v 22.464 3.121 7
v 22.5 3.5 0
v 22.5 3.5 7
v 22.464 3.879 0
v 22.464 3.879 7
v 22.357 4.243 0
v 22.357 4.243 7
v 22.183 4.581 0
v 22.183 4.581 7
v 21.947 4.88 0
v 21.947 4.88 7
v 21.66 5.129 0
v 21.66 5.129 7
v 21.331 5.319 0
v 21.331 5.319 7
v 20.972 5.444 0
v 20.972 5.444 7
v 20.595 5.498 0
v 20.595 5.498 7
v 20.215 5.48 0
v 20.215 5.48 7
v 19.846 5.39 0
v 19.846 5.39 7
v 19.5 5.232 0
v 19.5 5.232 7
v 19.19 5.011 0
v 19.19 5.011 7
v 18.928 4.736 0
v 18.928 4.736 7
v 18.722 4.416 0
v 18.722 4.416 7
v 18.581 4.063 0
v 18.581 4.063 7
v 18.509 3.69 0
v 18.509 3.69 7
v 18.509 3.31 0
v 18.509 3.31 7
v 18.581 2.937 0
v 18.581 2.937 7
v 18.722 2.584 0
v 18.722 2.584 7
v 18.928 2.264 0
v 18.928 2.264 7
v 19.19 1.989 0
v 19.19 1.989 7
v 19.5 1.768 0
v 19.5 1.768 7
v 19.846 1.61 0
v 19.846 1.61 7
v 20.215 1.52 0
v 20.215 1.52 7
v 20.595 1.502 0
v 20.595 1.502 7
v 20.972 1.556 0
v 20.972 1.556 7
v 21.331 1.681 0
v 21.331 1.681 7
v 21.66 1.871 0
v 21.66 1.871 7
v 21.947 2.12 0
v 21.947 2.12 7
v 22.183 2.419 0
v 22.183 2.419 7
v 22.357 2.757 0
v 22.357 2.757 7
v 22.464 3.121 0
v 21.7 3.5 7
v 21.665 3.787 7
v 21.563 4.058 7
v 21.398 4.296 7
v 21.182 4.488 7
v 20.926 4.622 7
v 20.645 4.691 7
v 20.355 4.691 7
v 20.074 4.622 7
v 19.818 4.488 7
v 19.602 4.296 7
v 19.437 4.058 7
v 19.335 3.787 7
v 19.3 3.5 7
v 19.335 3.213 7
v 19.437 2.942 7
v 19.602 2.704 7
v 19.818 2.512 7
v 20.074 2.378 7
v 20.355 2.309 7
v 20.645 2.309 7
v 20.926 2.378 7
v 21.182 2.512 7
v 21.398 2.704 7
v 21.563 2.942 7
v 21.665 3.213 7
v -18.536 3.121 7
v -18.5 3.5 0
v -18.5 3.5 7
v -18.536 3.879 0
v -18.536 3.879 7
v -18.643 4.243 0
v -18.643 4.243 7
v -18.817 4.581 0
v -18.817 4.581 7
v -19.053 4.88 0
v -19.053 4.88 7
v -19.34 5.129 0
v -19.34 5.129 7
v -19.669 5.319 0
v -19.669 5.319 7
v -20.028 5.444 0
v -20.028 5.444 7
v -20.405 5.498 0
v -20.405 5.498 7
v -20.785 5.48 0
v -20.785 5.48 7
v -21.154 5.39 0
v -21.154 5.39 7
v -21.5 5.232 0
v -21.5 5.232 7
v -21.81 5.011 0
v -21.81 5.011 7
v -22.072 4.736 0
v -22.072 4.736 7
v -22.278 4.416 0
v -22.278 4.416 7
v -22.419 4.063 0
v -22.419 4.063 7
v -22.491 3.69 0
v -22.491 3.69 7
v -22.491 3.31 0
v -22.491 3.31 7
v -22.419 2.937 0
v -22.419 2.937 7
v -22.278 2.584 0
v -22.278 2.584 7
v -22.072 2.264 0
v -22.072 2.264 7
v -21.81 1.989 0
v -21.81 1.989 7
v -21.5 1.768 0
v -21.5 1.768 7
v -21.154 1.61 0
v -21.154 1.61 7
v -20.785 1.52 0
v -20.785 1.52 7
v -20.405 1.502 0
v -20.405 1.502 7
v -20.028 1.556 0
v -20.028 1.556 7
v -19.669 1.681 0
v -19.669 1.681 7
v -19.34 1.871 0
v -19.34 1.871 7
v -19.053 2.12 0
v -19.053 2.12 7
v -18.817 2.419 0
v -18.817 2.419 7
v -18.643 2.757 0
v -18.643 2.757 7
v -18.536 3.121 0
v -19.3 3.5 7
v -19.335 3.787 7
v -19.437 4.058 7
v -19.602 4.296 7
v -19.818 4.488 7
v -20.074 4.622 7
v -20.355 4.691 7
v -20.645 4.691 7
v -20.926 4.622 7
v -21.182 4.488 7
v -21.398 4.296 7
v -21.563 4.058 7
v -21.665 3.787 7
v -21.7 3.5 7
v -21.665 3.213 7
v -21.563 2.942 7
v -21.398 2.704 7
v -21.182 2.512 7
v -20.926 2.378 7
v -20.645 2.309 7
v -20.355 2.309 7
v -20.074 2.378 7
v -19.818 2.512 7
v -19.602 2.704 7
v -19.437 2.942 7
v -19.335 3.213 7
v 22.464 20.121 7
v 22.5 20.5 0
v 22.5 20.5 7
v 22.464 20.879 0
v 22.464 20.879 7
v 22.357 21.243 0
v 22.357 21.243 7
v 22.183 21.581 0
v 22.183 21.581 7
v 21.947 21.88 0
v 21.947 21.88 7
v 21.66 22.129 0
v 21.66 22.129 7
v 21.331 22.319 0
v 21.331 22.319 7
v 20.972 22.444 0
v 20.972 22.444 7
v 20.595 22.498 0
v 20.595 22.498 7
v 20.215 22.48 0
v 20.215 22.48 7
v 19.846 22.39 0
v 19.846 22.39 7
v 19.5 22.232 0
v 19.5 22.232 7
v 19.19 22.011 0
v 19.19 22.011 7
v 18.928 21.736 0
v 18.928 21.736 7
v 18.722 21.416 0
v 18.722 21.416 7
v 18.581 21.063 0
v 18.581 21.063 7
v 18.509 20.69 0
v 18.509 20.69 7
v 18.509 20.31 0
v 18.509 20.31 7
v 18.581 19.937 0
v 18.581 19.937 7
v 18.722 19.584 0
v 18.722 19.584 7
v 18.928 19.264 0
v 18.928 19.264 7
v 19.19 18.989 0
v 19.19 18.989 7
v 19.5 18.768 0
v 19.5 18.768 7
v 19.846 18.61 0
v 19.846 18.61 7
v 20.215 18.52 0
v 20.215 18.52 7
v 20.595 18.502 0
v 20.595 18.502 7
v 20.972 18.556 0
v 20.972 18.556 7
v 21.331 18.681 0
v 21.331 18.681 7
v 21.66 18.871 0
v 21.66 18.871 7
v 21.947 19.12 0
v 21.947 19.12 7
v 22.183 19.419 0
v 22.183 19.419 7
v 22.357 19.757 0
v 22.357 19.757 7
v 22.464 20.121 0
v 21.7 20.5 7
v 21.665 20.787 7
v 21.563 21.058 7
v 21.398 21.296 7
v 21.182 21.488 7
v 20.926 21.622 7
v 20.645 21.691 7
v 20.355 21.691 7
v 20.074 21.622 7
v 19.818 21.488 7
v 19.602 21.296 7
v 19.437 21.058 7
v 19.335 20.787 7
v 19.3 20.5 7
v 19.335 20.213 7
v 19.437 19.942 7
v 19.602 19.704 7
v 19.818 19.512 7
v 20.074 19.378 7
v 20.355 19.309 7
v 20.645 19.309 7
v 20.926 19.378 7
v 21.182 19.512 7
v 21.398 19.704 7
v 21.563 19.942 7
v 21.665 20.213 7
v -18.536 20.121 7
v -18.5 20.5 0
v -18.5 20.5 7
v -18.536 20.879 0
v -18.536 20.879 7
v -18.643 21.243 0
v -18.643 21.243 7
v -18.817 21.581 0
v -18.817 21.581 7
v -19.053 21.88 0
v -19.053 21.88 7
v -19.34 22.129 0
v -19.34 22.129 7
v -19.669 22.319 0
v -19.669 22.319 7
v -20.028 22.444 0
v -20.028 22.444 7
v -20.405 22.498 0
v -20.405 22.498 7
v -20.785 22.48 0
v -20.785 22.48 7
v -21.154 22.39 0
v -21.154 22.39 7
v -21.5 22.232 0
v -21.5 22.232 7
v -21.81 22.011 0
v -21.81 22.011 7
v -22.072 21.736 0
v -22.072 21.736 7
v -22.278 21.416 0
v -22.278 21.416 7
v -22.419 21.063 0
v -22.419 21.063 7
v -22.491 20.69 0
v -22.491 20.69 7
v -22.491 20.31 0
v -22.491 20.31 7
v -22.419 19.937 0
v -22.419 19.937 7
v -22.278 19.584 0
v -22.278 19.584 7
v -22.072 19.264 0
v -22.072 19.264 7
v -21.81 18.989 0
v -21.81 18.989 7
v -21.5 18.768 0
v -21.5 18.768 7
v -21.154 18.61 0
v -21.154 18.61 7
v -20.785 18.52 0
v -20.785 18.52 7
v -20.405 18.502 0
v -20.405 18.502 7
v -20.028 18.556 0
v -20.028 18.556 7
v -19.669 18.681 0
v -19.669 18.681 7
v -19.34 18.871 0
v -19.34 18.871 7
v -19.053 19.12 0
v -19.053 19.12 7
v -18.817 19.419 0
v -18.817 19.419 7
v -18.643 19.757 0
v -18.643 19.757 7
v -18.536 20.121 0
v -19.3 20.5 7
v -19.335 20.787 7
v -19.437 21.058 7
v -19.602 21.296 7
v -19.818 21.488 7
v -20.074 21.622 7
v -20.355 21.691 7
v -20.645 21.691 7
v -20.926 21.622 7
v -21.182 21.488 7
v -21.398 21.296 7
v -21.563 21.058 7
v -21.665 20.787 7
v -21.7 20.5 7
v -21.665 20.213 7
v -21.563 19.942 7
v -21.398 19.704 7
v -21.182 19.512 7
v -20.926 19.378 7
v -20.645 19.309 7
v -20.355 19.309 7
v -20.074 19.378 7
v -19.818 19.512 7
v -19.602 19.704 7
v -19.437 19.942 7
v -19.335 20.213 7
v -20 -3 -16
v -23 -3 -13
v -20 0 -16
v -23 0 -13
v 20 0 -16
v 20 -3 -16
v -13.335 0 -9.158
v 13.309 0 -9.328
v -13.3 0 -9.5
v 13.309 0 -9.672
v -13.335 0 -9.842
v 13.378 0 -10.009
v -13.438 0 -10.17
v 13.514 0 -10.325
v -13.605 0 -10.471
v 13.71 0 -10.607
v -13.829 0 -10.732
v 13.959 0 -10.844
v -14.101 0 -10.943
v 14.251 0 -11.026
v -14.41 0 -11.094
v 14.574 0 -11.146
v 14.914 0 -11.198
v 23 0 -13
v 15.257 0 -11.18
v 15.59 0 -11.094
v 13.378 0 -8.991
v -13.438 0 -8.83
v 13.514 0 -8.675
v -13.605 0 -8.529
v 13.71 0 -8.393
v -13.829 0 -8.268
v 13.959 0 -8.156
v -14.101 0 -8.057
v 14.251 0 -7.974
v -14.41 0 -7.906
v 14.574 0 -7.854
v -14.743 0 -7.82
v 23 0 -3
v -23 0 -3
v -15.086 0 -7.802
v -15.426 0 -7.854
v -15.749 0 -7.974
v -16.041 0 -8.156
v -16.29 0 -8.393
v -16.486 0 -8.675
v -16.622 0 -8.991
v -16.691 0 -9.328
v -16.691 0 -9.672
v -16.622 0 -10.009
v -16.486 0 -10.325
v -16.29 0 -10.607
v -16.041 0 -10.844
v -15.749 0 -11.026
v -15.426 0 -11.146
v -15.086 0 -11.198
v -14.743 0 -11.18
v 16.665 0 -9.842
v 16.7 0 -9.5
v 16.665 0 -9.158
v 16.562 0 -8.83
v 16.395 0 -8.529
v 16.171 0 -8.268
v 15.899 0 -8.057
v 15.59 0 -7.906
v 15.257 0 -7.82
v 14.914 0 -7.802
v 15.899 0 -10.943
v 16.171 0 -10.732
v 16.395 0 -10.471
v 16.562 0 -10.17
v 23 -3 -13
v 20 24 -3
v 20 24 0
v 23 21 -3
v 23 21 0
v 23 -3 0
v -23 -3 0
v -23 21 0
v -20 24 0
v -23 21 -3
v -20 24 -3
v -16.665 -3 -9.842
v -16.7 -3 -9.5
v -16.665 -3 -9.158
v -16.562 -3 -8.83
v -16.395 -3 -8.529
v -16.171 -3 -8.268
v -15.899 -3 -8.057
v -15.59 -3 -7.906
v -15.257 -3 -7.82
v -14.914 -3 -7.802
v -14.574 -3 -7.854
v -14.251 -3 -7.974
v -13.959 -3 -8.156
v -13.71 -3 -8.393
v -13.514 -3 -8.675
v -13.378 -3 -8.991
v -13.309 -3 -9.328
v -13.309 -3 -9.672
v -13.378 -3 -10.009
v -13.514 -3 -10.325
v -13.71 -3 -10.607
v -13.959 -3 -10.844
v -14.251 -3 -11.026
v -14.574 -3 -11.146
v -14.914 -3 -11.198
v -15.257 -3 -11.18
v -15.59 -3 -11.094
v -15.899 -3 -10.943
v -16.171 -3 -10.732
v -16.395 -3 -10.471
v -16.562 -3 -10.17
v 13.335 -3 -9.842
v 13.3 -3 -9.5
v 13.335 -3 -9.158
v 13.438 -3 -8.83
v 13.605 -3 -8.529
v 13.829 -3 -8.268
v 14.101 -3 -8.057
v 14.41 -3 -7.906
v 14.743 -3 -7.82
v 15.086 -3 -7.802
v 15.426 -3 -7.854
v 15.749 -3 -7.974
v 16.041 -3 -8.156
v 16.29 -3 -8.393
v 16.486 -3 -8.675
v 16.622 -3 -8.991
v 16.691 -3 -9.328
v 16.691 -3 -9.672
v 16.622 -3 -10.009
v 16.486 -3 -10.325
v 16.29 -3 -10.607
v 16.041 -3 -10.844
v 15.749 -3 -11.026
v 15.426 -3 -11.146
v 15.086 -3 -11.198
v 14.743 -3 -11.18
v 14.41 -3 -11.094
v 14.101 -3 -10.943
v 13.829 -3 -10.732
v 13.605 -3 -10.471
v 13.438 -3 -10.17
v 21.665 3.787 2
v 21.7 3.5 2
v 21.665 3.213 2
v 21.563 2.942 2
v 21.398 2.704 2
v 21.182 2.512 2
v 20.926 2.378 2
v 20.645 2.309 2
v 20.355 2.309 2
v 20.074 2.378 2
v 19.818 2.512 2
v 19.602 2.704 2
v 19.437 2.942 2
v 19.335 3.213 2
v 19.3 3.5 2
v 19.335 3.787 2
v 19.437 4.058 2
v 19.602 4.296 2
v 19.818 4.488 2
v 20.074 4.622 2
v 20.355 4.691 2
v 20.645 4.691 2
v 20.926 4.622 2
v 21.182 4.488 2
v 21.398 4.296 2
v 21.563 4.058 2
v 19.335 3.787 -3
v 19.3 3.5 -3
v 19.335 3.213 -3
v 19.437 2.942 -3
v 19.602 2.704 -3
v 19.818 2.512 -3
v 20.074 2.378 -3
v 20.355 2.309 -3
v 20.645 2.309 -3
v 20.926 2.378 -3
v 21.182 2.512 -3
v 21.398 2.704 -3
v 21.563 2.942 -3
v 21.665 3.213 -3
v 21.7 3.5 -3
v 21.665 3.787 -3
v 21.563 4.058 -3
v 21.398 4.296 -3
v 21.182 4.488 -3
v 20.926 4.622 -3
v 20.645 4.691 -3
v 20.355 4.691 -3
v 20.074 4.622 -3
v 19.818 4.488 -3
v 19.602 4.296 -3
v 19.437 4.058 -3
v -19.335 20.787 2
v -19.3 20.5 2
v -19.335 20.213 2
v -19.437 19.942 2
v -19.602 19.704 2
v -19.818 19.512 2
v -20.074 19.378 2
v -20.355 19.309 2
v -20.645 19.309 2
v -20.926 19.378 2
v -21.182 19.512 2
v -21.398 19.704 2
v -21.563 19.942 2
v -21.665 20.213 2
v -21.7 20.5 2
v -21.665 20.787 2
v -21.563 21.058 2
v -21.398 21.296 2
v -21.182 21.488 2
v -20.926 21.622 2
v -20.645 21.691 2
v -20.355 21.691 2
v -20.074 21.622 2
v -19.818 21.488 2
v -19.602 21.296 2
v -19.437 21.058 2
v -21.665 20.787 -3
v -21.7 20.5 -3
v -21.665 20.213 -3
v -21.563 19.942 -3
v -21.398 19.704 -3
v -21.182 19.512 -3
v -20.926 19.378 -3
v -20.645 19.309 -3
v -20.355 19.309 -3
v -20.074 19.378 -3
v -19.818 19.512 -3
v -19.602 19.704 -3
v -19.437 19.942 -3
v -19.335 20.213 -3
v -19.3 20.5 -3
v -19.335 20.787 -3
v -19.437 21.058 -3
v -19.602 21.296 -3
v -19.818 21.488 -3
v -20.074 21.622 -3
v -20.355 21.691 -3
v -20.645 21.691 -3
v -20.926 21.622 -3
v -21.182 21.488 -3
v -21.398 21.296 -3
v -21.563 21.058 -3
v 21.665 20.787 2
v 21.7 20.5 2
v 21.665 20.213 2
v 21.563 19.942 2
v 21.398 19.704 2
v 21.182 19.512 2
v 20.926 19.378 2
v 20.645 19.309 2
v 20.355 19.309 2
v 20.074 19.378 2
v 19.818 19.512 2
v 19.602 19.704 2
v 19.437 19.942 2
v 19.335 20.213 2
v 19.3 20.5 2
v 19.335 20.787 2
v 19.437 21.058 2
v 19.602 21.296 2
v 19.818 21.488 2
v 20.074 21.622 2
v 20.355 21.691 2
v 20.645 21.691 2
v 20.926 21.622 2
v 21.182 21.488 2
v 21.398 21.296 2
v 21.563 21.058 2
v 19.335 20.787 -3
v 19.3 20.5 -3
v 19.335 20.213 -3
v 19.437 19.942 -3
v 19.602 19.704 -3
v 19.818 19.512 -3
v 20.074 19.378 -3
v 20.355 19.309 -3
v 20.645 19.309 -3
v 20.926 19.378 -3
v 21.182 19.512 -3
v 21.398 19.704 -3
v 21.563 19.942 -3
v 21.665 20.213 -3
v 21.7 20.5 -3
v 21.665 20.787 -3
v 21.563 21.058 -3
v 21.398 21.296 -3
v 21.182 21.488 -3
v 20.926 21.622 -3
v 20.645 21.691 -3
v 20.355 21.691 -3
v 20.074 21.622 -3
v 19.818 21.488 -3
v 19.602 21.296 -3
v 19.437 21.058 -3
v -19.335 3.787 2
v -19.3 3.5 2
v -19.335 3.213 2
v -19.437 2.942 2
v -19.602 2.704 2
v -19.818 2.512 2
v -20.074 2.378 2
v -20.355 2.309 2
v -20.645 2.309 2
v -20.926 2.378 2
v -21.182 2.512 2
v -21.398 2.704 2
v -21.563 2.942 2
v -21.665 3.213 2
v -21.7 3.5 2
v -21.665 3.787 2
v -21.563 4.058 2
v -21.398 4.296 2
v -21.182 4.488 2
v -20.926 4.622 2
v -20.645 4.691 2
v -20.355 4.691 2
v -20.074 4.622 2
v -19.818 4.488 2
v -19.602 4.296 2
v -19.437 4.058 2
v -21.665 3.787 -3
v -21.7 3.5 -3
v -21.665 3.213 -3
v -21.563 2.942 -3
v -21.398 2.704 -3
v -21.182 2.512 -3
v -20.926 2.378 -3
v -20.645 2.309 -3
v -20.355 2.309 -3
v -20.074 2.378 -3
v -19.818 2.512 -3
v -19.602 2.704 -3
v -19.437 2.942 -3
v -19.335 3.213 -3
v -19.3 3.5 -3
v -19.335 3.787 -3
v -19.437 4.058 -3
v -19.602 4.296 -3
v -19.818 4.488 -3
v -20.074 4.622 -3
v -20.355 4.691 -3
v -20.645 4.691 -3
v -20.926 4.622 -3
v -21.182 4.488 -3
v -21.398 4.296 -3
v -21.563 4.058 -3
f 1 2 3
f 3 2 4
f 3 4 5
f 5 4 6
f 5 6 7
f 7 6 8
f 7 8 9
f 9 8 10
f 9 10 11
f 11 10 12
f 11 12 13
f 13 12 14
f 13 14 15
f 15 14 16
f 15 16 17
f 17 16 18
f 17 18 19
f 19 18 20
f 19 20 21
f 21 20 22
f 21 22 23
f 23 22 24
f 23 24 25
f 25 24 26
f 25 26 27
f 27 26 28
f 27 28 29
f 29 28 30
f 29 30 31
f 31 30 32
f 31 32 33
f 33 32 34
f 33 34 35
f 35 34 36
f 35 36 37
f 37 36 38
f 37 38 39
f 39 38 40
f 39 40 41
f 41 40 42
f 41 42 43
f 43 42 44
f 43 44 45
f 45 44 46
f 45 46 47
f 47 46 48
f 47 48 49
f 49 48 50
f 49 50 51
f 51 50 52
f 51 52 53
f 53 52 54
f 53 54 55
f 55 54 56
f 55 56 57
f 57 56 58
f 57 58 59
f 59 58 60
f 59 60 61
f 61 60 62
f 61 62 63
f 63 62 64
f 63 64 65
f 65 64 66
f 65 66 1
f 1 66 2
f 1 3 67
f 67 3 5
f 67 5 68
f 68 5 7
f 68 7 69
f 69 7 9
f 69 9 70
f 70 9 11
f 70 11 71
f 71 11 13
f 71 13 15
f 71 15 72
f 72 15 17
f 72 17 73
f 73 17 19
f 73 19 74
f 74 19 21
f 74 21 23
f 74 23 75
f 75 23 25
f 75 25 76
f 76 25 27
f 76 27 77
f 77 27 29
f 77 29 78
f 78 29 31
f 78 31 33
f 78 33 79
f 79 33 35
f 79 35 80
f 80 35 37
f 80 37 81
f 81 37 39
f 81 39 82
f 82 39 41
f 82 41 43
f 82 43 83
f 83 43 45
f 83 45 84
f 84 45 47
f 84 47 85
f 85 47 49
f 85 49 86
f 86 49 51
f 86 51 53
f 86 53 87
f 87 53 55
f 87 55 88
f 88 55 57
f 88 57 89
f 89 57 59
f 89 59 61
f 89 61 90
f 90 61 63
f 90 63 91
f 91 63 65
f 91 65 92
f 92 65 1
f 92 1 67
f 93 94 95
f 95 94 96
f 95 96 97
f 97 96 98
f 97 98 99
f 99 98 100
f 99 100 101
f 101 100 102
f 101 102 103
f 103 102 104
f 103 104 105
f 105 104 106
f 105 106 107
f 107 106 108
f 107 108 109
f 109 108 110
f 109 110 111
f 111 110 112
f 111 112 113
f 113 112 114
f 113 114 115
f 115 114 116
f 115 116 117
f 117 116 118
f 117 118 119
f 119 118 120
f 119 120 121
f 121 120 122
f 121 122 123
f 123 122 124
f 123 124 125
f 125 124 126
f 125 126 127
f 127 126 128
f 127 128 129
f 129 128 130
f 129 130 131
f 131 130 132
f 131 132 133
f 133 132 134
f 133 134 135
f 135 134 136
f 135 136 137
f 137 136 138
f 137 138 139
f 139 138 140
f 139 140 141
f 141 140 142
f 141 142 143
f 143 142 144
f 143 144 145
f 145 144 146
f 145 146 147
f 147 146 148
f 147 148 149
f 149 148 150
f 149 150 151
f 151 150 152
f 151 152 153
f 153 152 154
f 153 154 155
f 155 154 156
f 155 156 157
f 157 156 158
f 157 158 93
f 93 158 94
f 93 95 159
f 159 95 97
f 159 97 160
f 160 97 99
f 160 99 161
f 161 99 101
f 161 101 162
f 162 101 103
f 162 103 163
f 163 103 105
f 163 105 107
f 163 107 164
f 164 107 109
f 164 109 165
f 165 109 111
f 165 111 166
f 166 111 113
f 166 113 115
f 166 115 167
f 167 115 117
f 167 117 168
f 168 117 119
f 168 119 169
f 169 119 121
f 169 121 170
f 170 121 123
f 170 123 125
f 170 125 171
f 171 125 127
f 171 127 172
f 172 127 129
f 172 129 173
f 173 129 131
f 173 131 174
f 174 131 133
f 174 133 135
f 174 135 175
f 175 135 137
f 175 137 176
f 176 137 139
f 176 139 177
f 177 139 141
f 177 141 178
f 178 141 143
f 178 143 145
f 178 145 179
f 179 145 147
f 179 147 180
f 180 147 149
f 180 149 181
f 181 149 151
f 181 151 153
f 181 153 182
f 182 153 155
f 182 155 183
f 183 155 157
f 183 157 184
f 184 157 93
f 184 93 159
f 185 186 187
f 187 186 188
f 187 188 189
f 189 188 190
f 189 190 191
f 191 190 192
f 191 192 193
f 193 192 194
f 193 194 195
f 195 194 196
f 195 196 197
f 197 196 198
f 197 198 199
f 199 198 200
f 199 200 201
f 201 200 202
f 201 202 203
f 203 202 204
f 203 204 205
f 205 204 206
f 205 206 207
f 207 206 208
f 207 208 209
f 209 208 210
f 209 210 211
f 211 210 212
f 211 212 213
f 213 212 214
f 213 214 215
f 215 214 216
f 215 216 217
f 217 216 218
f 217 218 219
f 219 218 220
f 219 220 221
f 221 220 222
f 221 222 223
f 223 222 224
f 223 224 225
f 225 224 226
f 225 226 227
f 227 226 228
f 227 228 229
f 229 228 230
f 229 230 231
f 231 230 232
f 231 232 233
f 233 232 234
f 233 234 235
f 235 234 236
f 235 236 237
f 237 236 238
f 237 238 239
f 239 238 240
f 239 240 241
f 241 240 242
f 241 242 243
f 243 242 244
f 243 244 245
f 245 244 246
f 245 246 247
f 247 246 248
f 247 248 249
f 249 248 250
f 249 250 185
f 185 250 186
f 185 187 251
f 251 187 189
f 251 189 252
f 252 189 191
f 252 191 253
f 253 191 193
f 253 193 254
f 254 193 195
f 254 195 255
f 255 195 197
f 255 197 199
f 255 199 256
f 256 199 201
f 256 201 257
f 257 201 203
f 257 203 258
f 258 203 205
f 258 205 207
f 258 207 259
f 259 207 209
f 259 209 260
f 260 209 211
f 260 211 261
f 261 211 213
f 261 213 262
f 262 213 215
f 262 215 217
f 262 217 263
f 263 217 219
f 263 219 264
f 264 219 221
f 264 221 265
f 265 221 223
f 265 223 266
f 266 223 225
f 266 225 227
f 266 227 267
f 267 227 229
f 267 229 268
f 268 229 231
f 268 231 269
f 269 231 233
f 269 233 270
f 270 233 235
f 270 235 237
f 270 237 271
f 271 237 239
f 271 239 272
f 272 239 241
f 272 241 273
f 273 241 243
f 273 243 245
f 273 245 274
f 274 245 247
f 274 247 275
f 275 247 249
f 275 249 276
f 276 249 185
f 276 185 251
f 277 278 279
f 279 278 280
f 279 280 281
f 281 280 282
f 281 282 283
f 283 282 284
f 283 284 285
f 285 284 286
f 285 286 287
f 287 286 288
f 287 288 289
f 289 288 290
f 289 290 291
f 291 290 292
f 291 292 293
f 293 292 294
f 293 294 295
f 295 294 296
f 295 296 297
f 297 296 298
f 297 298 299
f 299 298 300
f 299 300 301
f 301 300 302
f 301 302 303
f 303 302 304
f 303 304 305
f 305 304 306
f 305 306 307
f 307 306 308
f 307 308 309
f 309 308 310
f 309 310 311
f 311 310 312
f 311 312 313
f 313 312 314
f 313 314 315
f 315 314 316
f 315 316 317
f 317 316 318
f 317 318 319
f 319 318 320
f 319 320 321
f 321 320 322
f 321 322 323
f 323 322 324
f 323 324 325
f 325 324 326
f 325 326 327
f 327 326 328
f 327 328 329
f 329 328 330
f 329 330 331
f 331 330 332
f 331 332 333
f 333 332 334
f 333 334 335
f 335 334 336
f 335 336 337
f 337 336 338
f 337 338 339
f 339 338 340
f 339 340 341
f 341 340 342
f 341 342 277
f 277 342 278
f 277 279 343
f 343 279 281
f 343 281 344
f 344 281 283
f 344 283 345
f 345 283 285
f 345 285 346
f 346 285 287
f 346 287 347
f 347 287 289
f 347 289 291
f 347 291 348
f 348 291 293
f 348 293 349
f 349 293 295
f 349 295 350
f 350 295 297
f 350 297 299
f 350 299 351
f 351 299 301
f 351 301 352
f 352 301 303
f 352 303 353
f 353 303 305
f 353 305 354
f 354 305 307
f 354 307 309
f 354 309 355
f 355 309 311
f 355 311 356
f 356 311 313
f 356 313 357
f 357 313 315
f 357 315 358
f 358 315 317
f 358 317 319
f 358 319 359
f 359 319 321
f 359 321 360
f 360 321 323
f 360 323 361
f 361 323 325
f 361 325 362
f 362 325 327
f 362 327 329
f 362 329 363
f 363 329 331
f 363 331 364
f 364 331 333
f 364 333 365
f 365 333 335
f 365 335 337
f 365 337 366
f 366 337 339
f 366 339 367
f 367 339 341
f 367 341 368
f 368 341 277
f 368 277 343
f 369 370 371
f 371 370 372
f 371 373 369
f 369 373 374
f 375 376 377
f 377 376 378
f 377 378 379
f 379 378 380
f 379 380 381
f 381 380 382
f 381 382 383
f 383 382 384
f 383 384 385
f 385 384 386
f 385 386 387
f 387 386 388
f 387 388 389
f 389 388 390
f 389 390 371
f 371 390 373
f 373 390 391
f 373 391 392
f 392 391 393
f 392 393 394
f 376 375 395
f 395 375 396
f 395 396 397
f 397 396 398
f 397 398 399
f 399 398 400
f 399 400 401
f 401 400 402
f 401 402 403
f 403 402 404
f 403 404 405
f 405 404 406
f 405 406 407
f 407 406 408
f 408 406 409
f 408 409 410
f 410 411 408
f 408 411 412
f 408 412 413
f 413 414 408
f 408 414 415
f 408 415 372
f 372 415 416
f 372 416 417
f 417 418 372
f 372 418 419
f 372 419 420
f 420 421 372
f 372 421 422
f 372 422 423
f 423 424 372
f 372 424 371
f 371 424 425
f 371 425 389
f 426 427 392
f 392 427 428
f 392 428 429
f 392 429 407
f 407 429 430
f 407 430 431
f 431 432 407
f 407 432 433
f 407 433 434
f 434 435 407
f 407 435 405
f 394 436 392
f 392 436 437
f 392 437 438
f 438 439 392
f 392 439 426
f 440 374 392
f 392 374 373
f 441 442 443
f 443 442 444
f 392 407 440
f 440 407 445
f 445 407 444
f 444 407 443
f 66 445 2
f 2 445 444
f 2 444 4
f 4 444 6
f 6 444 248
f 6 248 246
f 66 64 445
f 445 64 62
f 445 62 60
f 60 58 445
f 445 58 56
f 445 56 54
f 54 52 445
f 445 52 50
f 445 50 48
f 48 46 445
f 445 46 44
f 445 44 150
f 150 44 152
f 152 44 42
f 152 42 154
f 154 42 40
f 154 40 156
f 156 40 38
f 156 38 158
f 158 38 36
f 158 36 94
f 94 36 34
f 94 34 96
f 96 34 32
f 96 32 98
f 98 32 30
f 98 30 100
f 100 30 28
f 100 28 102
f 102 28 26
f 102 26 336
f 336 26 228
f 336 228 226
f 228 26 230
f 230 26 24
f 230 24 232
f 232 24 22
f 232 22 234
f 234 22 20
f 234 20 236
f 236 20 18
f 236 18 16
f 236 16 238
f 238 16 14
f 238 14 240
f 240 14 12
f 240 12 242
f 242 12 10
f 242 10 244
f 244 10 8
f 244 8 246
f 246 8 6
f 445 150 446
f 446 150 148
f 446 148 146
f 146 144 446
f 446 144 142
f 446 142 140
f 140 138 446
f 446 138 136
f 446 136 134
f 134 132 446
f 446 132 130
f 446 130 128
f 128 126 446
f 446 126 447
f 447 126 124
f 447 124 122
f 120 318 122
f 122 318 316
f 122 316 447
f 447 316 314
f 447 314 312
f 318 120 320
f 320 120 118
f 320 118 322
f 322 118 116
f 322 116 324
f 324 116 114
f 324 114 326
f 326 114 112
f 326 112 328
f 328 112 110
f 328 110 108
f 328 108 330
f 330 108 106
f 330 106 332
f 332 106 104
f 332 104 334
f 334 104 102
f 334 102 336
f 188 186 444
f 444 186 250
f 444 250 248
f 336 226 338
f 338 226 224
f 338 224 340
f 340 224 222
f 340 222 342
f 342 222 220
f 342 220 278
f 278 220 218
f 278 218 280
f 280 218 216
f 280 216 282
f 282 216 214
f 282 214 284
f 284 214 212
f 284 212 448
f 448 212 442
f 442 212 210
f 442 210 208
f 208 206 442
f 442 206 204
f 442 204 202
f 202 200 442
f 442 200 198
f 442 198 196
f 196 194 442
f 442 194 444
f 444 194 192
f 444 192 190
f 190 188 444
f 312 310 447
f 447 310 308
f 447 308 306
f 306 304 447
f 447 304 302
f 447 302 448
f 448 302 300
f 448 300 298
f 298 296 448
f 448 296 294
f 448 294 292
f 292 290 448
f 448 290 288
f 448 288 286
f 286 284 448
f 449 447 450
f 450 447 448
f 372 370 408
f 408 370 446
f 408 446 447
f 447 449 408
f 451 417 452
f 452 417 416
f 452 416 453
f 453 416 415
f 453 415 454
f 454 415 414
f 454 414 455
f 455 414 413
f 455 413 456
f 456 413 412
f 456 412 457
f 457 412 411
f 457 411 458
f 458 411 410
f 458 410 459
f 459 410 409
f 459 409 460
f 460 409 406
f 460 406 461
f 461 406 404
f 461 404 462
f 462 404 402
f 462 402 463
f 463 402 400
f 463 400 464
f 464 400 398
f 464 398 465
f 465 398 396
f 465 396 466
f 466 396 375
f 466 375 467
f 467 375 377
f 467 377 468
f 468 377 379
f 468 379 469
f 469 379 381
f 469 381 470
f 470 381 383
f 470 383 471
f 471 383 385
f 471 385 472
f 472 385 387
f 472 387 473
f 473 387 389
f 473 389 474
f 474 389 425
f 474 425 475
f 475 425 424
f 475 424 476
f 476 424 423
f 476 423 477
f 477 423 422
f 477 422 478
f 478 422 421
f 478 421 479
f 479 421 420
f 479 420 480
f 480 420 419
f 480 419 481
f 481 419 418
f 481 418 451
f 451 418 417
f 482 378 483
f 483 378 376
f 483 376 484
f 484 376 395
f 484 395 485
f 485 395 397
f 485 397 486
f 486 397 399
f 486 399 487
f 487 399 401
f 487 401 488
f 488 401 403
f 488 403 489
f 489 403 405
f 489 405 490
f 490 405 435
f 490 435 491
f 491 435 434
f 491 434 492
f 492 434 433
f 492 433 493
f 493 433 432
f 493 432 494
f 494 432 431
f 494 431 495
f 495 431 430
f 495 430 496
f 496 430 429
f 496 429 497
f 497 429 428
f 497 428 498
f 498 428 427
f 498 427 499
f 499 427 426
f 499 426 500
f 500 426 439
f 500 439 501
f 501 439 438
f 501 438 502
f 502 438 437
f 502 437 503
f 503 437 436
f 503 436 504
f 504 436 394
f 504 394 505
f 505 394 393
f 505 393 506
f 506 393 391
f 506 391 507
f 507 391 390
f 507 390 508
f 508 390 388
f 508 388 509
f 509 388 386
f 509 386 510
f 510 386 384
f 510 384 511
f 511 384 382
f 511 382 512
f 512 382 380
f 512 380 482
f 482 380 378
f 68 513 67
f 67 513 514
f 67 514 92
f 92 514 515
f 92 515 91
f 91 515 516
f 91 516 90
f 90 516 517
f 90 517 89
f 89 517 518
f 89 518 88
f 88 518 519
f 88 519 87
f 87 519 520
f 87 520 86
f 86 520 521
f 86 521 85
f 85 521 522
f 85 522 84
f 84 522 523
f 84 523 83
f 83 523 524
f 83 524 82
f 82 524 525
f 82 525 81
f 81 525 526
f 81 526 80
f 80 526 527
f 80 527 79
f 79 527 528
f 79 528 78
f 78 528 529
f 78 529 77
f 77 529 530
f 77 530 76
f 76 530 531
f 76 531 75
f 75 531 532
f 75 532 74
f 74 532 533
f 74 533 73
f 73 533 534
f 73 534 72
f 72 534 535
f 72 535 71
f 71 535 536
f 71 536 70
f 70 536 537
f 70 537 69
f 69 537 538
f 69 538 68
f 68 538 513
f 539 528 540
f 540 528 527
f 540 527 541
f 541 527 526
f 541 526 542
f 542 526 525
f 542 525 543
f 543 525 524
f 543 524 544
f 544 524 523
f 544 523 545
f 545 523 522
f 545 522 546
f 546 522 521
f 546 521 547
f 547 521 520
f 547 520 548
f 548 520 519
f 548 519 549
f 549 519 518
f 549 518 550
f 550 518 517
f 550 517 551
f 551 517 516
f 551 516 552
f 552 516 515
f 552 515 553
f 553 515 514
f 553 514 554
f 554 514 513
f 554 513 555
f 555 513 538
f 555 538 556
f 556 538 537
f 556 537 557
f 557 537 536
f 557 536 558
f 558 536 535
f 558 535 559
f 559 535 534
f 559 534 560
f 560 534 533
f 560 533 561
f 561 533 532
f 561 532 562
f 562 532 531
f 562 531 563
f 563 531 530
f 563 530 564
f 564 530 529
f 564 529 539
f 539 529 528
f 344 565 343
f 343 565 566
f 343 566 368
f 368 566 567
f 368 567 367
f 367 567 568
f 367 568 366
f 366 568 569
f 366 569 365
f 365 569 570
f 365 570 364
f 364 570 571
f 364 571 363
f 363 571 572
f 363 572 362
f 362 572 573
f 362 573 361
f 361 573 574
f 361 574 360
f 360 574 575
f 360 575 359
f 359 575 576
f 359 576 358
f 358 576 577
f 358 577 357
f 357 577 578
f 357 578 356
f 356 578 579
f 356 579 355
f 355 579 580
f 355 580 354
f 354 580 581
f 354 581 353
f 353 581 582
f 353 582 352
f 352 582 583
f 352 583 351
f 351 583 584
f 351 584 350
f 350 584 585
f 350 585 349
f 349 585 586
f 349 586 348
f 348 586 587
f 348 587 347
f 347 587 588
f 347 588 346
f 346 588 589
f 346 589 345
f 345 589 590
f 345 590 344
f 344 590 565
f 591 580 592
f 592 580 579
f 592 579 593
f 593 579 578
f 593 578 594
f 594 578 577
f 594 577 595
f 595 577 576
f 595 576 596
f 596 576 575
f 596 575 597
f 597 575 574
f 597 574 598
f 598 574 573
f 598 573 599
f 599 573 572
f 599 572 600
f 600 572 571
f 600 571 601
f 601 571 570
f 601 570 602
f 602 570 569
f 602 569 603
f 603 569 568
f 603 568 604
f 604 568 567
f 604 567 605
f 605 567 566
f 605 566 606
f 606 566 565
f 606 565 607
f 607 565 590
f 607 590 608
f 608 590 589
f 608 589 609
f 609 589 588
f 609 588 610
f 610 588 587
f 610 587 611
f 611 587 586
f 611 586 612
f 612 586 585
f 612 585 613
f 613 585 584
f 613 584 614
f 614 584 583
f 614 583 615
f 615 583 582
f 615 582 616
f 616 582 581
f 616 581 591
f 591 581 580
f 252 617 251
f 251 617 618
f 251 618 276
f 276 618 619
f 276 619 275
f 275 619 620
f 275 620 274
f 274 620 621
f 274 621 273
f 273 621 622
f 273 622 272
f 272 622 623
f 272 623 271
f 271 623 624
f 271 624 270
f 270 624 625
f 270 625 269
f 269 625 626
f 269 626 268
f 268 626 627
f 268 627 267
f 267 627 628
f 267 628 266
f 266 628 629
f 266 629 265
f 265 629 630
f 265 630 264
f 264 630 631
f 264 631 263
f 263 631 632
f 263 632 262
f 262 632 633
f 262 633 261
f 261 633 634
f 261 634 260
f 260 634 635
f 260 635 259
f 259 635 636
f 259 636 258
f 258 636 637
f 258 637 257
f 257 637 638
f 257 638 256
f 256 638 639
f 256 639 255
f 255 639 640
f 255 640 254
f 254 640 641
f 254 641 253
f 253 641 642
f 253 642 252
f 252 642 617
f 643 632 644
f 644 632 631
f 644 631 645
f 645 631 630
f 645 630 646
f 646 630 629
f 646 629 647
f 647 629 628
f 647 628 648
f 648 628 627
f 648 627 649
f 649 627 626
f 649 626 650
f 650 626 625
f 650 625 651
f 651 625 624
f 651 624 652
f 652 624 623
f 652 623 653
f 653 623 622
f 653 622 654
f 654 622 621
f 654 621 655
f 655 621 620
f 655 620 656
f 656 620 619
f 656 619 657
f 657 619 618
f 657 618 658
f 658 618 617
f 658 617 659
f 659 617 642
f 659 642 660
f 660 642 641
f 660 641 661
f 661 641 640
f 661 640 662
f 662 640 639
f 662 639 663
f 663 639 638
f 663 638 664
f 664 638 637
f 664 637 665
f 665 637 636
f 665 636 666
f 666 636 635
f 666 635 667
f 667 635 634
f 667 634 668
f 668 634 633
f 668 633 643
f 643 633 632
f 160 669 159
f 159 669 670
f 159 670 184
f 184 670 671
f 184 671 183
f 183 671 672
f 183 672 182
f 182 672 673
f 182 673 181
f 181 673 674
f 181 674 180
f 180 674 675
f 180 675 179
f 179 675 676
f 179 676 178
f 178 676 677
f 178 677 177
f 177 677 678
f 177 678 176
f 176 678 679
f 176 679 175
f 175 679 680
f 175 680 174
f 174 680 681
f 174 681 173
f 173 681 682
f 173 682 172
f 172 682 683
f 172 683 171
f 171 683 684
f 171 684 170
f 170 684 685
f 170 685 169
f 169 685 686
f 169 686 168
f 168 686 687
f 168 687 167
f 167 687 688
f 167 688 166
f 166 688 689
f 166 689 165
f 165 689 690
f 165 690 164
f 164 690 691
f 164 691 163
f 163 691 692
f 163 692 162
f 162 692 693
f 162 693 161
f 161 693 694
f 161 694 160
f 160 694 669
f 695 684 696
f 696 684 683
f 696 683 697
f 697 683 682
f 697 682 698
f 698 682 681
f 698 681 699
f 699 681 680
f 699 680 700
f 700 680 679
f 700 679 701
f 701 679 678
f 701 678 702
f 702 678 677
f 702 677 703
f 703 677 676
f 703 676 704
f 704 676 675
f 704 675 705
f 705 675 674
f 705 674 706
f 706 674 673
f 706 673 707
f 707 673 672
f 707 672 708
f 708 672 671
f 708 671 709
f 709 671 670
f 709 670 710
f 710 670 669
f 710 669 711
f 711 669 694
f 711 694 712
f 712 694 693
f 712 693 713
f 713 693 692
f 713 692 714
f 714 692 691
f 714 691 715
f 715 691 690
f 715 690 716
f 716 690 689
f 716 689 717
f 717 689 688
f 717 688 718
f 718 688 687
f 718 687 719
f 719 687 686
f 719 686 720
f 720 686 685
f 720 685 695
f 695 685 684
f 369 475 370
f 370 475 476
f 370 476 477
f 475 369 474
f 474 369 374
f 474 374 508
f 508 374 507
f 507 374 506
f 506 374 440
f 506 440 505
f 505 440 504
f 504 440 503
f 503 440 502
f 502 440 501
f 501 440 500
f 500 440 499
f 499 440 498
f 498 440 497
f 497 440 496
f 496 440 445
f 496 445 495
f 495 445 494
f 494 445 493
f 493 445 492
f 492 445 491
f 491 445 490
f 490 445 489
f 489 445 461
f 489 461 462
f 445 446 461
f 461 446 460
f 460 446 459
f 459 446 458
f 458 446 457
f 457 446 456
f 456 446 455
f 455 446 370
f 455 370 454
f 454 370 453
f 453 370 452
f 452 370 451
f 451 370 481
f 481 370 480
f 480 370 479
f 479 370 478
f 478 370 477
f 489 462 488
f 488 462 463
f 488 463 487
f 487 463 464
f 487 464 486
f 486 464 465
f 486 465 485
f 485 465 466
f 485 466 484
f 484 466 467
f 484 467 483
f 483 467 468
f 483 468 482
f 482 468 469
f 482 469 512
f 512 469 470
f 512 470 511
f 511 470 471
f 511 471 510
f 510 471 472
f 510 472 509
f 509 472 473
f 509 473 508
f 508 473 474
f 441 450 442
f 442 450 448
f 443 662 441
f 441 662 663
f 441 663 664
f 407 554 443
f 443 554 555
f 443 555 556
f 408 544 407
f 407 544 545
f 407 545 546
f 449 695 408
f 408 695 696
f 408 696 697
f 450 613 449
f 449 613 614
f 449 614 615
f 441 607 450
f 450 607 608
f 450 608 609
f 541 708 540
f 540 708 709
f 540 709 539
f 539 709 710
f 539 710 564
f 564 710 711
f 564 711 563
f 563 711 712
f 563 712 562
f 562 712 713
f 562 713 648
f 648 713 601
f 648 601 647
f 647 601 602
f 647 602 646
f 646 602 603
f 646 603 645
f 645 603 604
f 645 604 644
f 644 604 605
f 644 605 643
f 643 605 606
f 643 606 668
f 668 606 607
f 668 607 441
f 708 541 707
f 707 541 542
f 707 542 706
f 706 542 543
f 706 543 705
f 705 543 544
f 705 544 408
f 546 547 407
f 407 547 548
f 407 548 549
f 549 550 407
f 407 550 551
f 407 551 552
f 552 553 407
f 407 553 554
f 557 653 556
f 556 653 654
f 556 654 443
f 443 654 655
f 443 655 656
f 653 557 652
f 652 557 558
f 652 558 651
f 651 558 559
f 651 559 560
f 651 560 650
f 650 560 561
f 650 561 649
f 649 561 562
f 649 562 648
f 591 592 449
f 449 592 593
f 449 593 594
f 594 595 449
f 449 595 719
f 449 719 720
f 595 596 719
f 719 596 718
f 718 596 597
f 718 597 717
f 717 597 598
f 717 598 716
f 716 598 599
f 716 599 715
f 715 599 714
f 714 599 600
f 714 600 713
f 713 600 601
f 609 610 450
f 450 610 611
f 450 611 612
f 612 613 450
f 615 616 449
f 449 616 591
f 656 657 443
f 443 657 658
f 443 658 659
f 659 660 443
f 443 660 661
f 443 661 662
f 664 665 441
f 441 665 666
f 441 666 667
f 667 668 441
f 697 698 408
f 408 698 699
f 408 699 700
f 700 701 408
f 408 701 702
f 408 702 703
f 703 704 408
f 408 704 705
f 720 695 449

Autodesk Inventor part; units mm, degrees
ref_plane "YZ Plane" through (0, 0, 0) normal (1, 0, 0) x (0, 1, 0)
ref_plane "XZ Plane" through (0, 0, 0) normal (0, 1, 0) x (-1, 0, 0)
ref_plane "XY Plane" through (0, 0, 0) normal (0, 0, 1) x (1, 0, 0)
sketch "Sketch1" plane through (0, 0, 0) normal (0, 0, 1) x (1, 0, 0)
  line L0 (-22, 22) -> (22, 22) construction
  line L1 (22, 22) -> (22, 2) construction
  line L2 (22, 2) -> (-22, 2) construction
  line L3 (-22, 2) -> (-22, 22) construction
  line L4 (-22, 22) -> (22, 2) construction
  line L5 (22, 22) -> (-22, 2) construction
  line L6 (23, 24) -> (-23, 24)
  line L7 (-23, 24) -> (-23, 0)
  line L8 (-23, 0) -> (23, 0)
  line L9 (23, 0) -> (23, 24)
  point P0 (0, 12)
  point P1 (0, 12)
  point P2 (0, 0)
  point P3 (0, 12)
  dimension "d0" = 20
  dimension "d1" = 44
  dimension "d2" = 2
  dimension "d60" = 2
  dimension "d61" = 1
  dimension "d62" = 1
extrude "Extrusion1" add sketch "Sketch1" against normal blind 3
sketch "Sketch2" plane through (-23, 0, 0) normal (0, -1, 0) x (1, 0, 0)
  line L0 (0, 0) -> (46, 0)
  line L1 (46, 0) -> (46, -16)
  line L2 (46, -16) -> (0, -16)
  line L3 (0, -16) -> (0, 0)
  line L4 (46, 0) -> (0, 0) projected
  line L5 (46, 0) -> (46, -3) projected
  line L6 (0, 0) -> (0, -3) projected
  point P0 (23, 0)
  dimension "d54" = 46
  dimension "d55" = 16
  dimension "d59" = 46
extrude "Extrusion2" add sketch "Sketch2" along normal blind 3
sketch "Sketch3" plane through (0, 0, 0) normal (0, 0, 1) x (1, 0, 0)
  line L0 (-21.5, 21.5) -> (21.5, 21.5) construction
  line L1 (21.5, 21.5) -> (21.5, 2.5) construction
  line L2 (21.5, 2.5) -> (-21.5, 2.5) construction
  line L3 (-21.5, 2.5) -> (-21.5, 21.5) construction
  circle A0 centre (-20.5, 20.5) radius 1 construction
  circle A1 centre (-20.5, 3.5) radius 1 construction
  circle A2 centre (20.5, 20.5) radius 1 construction
  circle A3 centre (20.5, 3.5) radius 1 construction
  line L4 (23, 24) -> (23, 0) projected
  line L5 (22, 22) -> (-22, 22)
  line L6 (-22, 22) -> (-22, 2)
  line L7 (-22, 2) -> (22, 2)
  line L8 (22, 2) -> (22, 22)
  point P0 (0, 0)
  point P1 (0, 2.5)
  point P2 (21.5, 12)
  point P3 (23, 12)
  point P4 (23, 0)
  point P5 (24, 3)
  dimension "d8" = 2
  dimension "d9" = 2
  dimension "d10" = 2
  dimension "d11" = 2
  dimension "d43" = 0.5
  dimension "d44" = 44
  dimension "d45" = 20
hole "Hole1" at (-20.5, 20.5, 0) at (20.5, 20.5, 0) at (20.5, 3.5, 0) at (-20.5, 3.5, 0) direction (0, 0, -1) diameter 2.4 depth 6
sketch "Sketch5" plane through (-23, 0, 0) normal (0, 1, 0) x (1, 0, 0)
  line L0 (0, 3) -> (46, 3) projected
  line L1 (46, 0) -> (0, 0) projected
  line L2 (46, 16) -> (46, 3) projected
  line L3 (0, 3) -> (0, 16) projected
  line L4 (0, 16) -> (46, 16) projected
  line L5 (46, 16) -> (46, 3) projected
  line L6 (0, 3) -> (46, 3) projected
  line L7 (0, 3) -> (0, 16) projected
  line L8 (0, 16) -> (46, 16) projected
  line L9 (46, 0) -> (0, 0) projected
  line L10 (8, 9.5) -> (38, 9.5)
  line L11 (0, 0) -> (0, 3) projected
  line L12 (46, 3) -> (46, 0) projected
  line L13 (0, 0) -> (0, 3) projected
  line L14 (46, 3) -> (46, 0) projected
  point P0 (23, 9.5)
  point P1 (23, 16)
  dimension "d56" = 13
  dimension "d57" = 6.5
  dimension "d58" = 30
hole "Hole2" at (-15, 0, -9.5) at (15, 0, -9.5) direction (0, -1, 0) diameter 3.4 depth 6
chamfer "Chamfer2" distance 3 angle 45 4 edges at (-23, 24, -1.5) (23, 24, -1.5) (23, -1.5, -16) (-23, -1.5, -16)
sketch "Sketch6" plane through (0, 0, 0) normal (0, 0, 1) x (1, 0, 0)
  circle A0 centre (-20.5, 20.5) radius 1.2 projected
  circle A1 centre (-20.5, 20.5) radius 2
  circle A2 centre (20.5, 20.5) radius 1.2 projected
  circle A3 centre (20.5, 20.5) radius 2
  circle A4 centre (20.5, 3.5) radius 1.2 projected
  circle A5 centre (20.5, 3.5) radius 2
  circle A6 centre (-20.5, 3.5) radius 1.2 projected
  circle A7 centre (-20.5, 3.5) radius 2
  point P0 (0, 0)
  dimension "d46" = 4
  dimension "d47" = 4
  dimension "d49" = 4
  dimension "d50" = 4
extrude "Extrusion3" add sketch "Sketch6" along normal blind 7
equation "\"d60\" = d2"
equation "\"d62\" = d61"
equation "\"d54\" = d59"
equation "\"d44\" = d1"
equation "\"d45\" = d0"
equation "\"d57\" = 0.5 * d56"
equation "\"d46\" = d50"
equation "\"d47\" = d50"
equation "\"d49\" = d50"
properties part number "ultrasonic mount (front) v2"
